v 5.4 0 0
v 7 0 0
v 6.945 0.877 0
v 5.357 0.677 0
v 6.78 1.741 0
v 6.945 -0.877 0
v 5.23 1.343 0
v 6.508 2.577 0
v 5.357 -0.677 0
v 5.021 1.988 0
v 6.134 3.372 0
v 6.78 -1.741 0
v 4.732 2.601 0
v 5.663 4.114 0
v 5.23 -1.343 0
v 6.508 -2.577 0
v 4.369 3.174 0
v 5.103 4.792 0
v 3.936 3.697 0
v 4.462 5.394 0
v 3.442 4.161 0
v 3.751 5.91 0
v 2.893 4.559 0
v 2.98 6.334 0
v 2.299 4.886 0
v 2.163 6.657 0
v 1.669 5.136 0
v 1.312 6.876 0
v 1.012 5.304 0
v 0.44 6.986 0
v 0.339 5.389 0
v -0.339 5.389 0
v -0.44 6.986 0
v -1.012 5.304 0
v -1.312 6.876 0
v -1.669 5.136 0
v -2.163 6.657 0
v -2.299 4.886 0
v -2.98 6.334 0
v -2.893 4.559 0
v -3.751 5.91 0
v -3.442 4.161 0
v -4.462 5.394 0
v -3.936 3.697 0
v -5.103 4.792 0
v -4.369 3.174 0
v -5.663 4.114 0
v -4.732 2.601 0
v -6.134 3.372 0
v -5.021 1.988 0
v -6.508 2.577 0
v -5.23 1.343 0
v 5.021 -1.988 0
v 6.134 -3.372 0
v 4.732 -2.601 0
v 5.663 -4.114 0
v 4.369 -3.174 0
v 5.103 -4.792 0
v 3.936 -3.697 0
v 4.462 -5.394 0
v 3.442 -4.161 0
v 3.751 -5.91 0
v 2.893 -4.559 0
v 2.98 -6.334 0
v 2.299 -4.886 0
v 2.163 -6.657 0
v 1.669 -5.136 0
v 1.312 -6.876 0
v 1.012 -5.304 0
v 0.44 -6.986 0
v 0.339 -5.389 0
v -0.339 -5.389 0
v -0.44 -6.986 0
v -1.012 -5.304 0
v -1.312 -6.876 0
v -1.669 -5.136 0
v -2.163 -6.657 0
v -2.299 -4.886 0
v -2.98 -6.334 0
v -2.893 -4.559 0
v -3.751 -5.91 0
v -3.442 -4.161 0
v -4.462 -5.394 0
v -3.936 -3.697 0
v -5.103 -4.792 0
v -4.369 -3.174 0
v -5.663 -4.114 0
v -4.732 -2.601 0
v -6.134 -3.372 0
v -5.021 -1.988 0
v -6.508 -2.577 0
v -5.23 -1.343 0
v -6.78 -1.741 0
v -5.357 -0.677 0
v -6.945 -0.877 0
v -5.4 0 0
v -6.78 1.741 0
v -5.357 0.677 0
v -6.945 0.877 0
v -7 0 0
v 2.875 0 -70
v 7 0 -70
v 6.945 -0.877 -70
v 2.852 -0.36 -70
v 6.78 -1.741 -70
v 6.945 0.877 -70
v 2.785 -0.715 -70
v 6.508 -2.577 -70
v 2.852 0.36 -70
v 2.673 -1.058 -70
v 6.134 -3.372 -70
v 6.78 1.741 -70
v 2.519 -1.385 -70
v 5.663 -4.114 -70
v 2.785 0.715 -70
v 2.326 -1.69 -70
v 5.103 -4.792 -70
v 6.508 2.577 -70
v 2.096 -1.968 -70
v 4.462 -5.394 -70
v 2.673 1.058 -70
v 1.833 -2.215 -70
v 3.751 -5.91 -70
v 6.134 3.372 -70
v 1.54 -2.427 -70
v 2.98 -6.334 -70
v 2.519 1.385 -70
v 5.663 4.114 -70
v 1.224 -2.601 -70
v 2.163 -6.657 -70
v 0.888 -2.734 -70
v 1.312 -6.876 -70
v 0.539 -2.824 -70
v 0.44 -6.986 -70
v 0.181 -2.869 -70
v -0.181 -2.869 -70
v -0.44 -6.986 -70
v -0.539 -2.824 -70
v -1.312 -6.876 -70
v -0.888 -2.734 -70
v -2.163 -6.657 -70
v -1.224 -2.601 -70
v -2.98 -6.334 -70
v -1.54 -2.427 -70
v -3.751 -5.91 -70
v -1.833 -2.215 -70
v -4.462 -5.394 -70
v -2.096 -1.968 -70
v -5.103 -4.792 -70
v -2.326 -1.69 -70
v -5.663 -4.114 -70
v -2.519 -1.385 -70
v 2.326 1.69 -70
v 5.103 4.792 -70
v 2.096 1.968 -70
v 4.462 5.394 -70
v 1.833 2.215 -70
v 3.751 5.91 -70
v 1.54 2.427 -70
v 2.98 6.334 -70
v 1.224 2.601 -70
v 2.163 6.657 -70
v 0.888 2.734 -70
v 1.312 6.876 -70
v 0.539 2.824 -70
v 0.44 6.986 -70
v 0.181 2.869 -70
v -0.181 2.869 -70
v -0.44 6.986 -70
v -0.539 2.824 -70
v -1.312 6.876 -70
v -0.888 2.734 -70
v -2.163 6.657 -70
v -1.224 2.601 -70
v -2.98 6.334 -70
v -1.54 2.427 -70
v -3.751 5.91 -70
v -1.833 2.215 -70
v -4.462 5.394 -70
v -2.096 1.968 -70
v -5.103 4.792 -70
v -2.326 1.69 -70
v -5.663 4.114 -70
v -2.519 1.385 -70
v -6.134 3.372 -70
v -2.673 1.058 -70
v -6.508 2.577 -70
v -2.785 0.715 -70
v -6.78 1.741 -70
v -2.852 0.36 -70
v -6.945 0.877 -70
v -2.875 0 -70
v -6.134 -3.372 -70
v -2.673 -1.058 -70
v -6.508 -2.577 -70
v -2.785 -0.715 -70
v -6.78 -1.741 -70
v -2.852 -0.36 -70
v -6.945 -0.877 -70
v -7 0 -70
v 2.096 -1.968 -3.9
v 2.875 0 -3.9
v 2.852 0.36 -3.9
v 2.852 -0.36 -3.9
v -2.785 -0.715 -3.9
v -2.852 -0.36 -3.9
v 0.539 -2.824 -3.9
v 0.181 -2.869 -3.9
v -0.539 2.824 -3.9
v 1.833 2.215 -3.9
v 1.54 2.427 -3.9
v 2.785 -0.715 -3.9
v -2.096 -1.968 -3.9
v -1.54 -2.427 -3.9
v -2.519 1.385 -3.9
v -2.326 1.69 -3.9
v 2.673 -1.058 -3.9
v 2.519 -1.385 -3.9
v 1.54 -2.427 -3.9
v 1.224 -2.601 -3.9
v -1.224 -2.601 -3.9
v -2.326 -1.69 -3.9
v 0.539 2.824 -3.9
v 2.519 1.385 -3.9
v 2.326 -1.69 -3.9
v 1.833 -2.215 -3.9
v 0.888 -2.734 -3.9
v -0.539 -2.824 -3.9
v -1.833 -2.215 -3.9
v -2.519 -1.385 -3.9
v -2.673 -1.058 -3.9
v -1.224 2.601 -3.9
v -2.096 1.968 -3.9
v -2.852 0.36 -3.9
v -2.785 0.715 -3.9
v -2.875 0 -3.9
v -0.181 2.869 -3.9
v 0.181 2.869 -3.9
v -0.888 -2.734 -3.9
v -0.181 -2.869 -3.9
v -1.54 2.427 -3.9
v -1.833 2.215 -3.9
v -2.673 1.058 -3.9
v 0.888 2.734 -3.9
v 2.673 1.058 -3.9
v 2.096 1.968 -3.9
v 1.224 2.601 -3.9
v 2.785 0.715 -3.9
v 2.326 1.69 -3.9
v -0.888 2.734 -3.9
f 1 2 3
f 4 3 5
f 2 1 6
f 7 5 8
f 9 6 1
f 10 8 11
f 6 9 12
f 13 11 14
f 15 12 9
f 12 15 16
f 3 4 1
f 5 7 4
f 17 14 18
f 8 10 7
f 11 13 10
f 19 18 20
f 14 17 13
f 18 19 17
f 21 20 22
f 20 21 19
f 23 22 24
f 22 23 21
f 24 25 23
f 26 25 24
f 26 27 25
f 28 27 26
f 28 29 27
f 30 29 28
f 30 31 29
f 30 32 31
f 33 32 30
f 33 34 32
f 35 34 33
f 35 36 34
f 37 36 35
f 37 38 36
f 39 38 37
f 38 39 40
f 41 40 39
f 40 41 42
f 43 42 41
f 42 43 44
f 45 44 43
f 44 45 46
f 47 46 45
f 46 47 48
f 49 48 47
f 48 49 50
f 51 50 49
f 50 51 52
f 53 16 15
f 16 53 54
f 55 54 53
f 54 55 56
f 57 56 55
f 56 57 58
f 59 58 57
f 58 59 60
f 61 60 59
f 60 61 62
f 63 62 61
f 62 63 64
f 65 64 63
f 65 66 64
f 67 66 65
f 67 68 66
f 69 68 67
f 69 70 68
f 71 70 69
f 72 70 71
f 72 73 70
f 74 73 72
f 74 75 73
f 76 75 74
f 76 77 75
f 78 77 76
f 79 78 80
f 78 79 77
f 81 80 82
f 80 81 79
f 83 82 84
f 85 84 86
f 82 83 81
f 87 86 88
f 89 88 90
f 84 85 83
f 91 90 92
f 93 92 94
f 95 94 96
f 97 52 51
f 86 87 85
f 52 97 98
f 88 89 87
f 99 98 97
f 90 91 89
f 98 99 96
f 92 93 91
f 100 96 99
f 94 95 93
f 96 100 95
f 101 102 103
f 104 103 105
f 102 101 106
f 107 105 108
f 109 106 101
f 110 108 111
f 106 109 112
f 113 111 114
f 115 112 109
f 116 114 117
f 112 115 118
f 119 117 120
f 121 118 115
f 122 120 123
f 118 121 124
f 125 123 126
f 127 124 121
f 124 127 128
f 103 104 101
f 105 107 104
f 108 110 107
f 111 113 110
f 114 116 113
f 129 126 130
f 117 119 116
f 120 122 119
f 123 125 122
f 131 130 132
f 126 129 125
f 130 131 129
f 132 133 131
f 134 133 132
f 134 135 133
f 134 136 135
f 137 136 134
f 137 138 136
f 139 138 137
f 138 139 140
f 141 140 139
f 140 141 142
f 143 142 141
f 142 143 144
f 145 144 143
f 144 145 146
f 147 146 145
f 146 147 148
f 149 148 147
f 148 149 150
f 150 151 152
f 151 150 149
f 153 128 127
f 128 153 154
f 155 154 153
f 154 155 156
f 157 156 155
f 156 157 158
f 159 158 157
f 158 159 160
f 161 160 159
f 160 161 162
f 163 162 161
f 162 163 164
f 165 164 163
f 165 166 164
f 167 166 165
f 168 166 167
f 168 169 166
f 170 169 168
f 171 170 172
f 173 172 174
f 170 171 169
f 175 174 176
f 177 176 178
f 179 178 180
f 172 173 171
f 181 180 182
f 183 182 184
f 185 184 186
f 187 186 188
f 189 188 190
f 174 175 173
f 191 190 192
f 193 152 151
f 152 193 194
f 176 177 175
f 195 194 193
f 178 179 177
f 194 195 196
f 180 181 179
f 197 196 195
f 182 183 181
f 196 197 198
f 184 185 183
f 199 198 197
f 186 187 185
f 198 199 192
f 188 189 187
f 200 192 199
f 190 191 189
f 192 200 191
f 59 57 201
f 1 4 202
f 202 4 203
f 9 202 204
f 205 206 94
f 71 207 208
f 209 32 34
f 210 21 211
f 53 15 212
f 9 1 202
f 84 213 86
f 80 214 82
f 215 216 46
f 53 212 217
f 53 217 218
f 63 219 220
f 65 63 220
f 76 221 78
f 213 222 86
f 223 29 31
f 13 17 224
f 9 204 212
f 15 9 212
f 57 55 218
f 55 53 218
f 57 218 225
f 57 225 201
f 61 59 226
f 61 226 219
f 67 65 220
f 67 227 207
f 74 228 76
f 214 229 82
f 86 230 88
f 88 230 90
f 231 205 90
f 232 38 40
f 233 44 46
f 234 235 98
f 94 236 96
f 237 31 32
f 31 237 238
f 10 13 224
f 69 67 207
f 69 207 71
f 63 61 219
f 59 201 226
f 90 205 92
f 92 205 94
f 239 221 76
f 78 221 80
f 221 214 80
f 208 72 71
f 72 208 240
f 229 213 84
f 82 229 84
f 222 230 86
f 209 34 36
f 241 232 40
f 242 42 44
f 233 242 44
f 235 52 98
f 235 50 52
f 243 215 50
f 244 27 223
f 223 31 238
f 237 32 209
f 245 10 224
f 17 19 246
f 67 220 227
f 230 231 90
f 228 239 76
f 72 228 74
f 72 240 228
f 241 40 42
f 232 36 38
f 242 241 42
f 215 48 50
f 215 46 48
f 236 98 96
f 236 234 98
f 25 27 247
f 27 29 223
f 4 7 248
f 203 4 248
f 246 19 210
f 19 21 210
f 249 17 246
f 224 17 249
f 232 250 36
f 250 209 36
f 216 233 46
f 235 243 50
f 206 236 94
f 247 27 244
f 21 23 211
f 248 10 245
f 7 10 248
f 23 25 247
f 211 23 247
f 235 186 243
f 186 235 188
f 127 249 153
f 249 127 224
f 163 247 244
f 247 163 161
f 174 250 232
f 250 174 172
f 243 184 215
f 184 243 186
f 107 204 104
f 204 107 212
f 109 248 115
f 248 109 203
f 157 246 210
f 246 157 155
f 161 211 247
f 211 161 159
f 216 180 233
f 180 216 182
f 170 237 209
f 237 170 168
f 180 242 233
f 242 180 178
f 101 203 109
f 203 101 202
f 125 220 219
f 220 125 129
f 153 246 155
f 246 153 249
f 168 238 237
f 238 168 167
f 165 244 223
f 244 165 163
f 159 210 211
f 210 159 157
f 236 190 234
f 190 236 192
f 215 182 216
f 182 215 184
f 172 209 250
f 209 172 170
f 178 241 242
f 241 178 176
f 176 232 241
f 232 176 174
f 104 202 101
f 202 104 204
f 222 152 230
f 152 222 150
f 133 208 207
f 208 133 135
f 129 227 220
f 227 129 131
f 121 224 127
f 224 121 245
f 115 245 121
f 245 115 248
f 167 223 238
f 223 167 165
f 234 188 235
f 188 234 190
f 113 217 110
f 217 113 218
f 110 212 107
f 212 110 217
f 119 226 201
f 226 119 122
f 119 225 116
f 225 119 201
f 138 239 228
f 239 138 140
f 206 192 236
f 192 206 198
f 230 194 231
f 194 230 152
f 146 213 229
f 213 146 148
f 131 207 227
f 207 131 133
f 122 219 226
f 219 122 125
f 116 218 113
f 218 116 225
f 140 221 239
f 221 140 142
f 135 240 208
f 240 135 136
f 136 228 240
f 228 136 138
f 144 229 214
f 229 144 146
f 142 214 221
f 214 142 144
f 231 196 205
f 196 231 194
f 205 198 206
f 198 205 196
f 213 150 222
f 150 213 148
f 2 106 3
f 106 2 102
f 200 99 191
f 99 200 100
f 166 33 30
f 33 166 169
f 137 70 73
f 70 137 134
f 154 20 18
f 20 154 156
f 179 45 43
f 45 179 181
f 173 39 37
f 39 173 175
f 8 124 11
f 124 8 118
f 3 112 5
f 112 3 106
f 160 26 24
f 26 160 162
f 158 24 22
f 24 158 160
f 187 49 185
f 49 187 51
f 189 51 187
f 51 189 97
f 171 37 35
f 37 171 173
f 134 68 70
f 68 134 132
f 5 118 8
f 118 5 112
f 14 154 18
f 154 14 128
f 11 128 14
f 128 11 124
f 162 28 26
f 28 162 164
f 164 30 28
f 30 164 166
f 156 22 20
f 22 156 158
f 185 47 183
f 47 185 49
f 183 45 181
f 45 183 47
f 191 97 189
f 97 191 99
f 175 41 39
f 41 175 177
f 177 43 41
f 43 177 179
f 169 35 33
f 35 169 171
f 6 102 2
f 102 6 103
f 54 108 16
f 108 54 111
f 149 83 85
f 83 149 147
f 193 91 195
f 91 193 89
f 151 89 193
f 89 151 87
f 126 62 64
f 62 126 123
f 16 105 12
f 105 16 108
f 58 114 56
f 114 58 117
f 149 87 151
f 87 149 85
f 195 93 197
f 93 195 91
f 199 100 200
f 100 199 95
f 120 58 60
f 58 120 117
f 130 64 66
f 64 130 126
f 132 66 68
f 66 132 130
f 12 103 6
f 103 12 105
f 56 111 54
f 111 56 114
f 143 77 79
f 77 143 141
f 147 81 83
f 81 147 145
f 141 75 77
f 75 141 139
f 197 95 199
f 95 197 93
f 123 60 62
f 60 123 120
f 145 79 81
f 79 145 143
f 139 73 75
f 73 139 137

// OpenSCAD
$fn = 50;


difference() {
	union() {
		translate(v = [0, 0, -70.0000000000]) {
			cylinder(h = 70, r = 7.0000000000);
		}
		cylinder(h = 0, r = 10.0000000000);
	}
	union() {
		translate(v = [0, 0, 0]) {
			rotate(a = [0, 0, 0]) {
				difference() {
					union() {
						#translate(v = [0, 0, -70.0000000000]) {
							cylinder(h = 70, r = 2.6000000000);
						}
						#translate(v = [0, 0, -3.9000000000]) {
							cylinder(h = 3.9000000000, r1 = 2.8750000000, r2 = 5.4000000000);
						}
						#translate(v = [0, 0, -70.0000000000]) {
							cylinder(h = 70, r = 2.8750000000);
						}
						#translate(v = [0, 0, -70.0000000000]) {
							cylinder(h = 70, r = 2.6000000000);
						}
					}
					union();
				}
			}
		}
	}
}
